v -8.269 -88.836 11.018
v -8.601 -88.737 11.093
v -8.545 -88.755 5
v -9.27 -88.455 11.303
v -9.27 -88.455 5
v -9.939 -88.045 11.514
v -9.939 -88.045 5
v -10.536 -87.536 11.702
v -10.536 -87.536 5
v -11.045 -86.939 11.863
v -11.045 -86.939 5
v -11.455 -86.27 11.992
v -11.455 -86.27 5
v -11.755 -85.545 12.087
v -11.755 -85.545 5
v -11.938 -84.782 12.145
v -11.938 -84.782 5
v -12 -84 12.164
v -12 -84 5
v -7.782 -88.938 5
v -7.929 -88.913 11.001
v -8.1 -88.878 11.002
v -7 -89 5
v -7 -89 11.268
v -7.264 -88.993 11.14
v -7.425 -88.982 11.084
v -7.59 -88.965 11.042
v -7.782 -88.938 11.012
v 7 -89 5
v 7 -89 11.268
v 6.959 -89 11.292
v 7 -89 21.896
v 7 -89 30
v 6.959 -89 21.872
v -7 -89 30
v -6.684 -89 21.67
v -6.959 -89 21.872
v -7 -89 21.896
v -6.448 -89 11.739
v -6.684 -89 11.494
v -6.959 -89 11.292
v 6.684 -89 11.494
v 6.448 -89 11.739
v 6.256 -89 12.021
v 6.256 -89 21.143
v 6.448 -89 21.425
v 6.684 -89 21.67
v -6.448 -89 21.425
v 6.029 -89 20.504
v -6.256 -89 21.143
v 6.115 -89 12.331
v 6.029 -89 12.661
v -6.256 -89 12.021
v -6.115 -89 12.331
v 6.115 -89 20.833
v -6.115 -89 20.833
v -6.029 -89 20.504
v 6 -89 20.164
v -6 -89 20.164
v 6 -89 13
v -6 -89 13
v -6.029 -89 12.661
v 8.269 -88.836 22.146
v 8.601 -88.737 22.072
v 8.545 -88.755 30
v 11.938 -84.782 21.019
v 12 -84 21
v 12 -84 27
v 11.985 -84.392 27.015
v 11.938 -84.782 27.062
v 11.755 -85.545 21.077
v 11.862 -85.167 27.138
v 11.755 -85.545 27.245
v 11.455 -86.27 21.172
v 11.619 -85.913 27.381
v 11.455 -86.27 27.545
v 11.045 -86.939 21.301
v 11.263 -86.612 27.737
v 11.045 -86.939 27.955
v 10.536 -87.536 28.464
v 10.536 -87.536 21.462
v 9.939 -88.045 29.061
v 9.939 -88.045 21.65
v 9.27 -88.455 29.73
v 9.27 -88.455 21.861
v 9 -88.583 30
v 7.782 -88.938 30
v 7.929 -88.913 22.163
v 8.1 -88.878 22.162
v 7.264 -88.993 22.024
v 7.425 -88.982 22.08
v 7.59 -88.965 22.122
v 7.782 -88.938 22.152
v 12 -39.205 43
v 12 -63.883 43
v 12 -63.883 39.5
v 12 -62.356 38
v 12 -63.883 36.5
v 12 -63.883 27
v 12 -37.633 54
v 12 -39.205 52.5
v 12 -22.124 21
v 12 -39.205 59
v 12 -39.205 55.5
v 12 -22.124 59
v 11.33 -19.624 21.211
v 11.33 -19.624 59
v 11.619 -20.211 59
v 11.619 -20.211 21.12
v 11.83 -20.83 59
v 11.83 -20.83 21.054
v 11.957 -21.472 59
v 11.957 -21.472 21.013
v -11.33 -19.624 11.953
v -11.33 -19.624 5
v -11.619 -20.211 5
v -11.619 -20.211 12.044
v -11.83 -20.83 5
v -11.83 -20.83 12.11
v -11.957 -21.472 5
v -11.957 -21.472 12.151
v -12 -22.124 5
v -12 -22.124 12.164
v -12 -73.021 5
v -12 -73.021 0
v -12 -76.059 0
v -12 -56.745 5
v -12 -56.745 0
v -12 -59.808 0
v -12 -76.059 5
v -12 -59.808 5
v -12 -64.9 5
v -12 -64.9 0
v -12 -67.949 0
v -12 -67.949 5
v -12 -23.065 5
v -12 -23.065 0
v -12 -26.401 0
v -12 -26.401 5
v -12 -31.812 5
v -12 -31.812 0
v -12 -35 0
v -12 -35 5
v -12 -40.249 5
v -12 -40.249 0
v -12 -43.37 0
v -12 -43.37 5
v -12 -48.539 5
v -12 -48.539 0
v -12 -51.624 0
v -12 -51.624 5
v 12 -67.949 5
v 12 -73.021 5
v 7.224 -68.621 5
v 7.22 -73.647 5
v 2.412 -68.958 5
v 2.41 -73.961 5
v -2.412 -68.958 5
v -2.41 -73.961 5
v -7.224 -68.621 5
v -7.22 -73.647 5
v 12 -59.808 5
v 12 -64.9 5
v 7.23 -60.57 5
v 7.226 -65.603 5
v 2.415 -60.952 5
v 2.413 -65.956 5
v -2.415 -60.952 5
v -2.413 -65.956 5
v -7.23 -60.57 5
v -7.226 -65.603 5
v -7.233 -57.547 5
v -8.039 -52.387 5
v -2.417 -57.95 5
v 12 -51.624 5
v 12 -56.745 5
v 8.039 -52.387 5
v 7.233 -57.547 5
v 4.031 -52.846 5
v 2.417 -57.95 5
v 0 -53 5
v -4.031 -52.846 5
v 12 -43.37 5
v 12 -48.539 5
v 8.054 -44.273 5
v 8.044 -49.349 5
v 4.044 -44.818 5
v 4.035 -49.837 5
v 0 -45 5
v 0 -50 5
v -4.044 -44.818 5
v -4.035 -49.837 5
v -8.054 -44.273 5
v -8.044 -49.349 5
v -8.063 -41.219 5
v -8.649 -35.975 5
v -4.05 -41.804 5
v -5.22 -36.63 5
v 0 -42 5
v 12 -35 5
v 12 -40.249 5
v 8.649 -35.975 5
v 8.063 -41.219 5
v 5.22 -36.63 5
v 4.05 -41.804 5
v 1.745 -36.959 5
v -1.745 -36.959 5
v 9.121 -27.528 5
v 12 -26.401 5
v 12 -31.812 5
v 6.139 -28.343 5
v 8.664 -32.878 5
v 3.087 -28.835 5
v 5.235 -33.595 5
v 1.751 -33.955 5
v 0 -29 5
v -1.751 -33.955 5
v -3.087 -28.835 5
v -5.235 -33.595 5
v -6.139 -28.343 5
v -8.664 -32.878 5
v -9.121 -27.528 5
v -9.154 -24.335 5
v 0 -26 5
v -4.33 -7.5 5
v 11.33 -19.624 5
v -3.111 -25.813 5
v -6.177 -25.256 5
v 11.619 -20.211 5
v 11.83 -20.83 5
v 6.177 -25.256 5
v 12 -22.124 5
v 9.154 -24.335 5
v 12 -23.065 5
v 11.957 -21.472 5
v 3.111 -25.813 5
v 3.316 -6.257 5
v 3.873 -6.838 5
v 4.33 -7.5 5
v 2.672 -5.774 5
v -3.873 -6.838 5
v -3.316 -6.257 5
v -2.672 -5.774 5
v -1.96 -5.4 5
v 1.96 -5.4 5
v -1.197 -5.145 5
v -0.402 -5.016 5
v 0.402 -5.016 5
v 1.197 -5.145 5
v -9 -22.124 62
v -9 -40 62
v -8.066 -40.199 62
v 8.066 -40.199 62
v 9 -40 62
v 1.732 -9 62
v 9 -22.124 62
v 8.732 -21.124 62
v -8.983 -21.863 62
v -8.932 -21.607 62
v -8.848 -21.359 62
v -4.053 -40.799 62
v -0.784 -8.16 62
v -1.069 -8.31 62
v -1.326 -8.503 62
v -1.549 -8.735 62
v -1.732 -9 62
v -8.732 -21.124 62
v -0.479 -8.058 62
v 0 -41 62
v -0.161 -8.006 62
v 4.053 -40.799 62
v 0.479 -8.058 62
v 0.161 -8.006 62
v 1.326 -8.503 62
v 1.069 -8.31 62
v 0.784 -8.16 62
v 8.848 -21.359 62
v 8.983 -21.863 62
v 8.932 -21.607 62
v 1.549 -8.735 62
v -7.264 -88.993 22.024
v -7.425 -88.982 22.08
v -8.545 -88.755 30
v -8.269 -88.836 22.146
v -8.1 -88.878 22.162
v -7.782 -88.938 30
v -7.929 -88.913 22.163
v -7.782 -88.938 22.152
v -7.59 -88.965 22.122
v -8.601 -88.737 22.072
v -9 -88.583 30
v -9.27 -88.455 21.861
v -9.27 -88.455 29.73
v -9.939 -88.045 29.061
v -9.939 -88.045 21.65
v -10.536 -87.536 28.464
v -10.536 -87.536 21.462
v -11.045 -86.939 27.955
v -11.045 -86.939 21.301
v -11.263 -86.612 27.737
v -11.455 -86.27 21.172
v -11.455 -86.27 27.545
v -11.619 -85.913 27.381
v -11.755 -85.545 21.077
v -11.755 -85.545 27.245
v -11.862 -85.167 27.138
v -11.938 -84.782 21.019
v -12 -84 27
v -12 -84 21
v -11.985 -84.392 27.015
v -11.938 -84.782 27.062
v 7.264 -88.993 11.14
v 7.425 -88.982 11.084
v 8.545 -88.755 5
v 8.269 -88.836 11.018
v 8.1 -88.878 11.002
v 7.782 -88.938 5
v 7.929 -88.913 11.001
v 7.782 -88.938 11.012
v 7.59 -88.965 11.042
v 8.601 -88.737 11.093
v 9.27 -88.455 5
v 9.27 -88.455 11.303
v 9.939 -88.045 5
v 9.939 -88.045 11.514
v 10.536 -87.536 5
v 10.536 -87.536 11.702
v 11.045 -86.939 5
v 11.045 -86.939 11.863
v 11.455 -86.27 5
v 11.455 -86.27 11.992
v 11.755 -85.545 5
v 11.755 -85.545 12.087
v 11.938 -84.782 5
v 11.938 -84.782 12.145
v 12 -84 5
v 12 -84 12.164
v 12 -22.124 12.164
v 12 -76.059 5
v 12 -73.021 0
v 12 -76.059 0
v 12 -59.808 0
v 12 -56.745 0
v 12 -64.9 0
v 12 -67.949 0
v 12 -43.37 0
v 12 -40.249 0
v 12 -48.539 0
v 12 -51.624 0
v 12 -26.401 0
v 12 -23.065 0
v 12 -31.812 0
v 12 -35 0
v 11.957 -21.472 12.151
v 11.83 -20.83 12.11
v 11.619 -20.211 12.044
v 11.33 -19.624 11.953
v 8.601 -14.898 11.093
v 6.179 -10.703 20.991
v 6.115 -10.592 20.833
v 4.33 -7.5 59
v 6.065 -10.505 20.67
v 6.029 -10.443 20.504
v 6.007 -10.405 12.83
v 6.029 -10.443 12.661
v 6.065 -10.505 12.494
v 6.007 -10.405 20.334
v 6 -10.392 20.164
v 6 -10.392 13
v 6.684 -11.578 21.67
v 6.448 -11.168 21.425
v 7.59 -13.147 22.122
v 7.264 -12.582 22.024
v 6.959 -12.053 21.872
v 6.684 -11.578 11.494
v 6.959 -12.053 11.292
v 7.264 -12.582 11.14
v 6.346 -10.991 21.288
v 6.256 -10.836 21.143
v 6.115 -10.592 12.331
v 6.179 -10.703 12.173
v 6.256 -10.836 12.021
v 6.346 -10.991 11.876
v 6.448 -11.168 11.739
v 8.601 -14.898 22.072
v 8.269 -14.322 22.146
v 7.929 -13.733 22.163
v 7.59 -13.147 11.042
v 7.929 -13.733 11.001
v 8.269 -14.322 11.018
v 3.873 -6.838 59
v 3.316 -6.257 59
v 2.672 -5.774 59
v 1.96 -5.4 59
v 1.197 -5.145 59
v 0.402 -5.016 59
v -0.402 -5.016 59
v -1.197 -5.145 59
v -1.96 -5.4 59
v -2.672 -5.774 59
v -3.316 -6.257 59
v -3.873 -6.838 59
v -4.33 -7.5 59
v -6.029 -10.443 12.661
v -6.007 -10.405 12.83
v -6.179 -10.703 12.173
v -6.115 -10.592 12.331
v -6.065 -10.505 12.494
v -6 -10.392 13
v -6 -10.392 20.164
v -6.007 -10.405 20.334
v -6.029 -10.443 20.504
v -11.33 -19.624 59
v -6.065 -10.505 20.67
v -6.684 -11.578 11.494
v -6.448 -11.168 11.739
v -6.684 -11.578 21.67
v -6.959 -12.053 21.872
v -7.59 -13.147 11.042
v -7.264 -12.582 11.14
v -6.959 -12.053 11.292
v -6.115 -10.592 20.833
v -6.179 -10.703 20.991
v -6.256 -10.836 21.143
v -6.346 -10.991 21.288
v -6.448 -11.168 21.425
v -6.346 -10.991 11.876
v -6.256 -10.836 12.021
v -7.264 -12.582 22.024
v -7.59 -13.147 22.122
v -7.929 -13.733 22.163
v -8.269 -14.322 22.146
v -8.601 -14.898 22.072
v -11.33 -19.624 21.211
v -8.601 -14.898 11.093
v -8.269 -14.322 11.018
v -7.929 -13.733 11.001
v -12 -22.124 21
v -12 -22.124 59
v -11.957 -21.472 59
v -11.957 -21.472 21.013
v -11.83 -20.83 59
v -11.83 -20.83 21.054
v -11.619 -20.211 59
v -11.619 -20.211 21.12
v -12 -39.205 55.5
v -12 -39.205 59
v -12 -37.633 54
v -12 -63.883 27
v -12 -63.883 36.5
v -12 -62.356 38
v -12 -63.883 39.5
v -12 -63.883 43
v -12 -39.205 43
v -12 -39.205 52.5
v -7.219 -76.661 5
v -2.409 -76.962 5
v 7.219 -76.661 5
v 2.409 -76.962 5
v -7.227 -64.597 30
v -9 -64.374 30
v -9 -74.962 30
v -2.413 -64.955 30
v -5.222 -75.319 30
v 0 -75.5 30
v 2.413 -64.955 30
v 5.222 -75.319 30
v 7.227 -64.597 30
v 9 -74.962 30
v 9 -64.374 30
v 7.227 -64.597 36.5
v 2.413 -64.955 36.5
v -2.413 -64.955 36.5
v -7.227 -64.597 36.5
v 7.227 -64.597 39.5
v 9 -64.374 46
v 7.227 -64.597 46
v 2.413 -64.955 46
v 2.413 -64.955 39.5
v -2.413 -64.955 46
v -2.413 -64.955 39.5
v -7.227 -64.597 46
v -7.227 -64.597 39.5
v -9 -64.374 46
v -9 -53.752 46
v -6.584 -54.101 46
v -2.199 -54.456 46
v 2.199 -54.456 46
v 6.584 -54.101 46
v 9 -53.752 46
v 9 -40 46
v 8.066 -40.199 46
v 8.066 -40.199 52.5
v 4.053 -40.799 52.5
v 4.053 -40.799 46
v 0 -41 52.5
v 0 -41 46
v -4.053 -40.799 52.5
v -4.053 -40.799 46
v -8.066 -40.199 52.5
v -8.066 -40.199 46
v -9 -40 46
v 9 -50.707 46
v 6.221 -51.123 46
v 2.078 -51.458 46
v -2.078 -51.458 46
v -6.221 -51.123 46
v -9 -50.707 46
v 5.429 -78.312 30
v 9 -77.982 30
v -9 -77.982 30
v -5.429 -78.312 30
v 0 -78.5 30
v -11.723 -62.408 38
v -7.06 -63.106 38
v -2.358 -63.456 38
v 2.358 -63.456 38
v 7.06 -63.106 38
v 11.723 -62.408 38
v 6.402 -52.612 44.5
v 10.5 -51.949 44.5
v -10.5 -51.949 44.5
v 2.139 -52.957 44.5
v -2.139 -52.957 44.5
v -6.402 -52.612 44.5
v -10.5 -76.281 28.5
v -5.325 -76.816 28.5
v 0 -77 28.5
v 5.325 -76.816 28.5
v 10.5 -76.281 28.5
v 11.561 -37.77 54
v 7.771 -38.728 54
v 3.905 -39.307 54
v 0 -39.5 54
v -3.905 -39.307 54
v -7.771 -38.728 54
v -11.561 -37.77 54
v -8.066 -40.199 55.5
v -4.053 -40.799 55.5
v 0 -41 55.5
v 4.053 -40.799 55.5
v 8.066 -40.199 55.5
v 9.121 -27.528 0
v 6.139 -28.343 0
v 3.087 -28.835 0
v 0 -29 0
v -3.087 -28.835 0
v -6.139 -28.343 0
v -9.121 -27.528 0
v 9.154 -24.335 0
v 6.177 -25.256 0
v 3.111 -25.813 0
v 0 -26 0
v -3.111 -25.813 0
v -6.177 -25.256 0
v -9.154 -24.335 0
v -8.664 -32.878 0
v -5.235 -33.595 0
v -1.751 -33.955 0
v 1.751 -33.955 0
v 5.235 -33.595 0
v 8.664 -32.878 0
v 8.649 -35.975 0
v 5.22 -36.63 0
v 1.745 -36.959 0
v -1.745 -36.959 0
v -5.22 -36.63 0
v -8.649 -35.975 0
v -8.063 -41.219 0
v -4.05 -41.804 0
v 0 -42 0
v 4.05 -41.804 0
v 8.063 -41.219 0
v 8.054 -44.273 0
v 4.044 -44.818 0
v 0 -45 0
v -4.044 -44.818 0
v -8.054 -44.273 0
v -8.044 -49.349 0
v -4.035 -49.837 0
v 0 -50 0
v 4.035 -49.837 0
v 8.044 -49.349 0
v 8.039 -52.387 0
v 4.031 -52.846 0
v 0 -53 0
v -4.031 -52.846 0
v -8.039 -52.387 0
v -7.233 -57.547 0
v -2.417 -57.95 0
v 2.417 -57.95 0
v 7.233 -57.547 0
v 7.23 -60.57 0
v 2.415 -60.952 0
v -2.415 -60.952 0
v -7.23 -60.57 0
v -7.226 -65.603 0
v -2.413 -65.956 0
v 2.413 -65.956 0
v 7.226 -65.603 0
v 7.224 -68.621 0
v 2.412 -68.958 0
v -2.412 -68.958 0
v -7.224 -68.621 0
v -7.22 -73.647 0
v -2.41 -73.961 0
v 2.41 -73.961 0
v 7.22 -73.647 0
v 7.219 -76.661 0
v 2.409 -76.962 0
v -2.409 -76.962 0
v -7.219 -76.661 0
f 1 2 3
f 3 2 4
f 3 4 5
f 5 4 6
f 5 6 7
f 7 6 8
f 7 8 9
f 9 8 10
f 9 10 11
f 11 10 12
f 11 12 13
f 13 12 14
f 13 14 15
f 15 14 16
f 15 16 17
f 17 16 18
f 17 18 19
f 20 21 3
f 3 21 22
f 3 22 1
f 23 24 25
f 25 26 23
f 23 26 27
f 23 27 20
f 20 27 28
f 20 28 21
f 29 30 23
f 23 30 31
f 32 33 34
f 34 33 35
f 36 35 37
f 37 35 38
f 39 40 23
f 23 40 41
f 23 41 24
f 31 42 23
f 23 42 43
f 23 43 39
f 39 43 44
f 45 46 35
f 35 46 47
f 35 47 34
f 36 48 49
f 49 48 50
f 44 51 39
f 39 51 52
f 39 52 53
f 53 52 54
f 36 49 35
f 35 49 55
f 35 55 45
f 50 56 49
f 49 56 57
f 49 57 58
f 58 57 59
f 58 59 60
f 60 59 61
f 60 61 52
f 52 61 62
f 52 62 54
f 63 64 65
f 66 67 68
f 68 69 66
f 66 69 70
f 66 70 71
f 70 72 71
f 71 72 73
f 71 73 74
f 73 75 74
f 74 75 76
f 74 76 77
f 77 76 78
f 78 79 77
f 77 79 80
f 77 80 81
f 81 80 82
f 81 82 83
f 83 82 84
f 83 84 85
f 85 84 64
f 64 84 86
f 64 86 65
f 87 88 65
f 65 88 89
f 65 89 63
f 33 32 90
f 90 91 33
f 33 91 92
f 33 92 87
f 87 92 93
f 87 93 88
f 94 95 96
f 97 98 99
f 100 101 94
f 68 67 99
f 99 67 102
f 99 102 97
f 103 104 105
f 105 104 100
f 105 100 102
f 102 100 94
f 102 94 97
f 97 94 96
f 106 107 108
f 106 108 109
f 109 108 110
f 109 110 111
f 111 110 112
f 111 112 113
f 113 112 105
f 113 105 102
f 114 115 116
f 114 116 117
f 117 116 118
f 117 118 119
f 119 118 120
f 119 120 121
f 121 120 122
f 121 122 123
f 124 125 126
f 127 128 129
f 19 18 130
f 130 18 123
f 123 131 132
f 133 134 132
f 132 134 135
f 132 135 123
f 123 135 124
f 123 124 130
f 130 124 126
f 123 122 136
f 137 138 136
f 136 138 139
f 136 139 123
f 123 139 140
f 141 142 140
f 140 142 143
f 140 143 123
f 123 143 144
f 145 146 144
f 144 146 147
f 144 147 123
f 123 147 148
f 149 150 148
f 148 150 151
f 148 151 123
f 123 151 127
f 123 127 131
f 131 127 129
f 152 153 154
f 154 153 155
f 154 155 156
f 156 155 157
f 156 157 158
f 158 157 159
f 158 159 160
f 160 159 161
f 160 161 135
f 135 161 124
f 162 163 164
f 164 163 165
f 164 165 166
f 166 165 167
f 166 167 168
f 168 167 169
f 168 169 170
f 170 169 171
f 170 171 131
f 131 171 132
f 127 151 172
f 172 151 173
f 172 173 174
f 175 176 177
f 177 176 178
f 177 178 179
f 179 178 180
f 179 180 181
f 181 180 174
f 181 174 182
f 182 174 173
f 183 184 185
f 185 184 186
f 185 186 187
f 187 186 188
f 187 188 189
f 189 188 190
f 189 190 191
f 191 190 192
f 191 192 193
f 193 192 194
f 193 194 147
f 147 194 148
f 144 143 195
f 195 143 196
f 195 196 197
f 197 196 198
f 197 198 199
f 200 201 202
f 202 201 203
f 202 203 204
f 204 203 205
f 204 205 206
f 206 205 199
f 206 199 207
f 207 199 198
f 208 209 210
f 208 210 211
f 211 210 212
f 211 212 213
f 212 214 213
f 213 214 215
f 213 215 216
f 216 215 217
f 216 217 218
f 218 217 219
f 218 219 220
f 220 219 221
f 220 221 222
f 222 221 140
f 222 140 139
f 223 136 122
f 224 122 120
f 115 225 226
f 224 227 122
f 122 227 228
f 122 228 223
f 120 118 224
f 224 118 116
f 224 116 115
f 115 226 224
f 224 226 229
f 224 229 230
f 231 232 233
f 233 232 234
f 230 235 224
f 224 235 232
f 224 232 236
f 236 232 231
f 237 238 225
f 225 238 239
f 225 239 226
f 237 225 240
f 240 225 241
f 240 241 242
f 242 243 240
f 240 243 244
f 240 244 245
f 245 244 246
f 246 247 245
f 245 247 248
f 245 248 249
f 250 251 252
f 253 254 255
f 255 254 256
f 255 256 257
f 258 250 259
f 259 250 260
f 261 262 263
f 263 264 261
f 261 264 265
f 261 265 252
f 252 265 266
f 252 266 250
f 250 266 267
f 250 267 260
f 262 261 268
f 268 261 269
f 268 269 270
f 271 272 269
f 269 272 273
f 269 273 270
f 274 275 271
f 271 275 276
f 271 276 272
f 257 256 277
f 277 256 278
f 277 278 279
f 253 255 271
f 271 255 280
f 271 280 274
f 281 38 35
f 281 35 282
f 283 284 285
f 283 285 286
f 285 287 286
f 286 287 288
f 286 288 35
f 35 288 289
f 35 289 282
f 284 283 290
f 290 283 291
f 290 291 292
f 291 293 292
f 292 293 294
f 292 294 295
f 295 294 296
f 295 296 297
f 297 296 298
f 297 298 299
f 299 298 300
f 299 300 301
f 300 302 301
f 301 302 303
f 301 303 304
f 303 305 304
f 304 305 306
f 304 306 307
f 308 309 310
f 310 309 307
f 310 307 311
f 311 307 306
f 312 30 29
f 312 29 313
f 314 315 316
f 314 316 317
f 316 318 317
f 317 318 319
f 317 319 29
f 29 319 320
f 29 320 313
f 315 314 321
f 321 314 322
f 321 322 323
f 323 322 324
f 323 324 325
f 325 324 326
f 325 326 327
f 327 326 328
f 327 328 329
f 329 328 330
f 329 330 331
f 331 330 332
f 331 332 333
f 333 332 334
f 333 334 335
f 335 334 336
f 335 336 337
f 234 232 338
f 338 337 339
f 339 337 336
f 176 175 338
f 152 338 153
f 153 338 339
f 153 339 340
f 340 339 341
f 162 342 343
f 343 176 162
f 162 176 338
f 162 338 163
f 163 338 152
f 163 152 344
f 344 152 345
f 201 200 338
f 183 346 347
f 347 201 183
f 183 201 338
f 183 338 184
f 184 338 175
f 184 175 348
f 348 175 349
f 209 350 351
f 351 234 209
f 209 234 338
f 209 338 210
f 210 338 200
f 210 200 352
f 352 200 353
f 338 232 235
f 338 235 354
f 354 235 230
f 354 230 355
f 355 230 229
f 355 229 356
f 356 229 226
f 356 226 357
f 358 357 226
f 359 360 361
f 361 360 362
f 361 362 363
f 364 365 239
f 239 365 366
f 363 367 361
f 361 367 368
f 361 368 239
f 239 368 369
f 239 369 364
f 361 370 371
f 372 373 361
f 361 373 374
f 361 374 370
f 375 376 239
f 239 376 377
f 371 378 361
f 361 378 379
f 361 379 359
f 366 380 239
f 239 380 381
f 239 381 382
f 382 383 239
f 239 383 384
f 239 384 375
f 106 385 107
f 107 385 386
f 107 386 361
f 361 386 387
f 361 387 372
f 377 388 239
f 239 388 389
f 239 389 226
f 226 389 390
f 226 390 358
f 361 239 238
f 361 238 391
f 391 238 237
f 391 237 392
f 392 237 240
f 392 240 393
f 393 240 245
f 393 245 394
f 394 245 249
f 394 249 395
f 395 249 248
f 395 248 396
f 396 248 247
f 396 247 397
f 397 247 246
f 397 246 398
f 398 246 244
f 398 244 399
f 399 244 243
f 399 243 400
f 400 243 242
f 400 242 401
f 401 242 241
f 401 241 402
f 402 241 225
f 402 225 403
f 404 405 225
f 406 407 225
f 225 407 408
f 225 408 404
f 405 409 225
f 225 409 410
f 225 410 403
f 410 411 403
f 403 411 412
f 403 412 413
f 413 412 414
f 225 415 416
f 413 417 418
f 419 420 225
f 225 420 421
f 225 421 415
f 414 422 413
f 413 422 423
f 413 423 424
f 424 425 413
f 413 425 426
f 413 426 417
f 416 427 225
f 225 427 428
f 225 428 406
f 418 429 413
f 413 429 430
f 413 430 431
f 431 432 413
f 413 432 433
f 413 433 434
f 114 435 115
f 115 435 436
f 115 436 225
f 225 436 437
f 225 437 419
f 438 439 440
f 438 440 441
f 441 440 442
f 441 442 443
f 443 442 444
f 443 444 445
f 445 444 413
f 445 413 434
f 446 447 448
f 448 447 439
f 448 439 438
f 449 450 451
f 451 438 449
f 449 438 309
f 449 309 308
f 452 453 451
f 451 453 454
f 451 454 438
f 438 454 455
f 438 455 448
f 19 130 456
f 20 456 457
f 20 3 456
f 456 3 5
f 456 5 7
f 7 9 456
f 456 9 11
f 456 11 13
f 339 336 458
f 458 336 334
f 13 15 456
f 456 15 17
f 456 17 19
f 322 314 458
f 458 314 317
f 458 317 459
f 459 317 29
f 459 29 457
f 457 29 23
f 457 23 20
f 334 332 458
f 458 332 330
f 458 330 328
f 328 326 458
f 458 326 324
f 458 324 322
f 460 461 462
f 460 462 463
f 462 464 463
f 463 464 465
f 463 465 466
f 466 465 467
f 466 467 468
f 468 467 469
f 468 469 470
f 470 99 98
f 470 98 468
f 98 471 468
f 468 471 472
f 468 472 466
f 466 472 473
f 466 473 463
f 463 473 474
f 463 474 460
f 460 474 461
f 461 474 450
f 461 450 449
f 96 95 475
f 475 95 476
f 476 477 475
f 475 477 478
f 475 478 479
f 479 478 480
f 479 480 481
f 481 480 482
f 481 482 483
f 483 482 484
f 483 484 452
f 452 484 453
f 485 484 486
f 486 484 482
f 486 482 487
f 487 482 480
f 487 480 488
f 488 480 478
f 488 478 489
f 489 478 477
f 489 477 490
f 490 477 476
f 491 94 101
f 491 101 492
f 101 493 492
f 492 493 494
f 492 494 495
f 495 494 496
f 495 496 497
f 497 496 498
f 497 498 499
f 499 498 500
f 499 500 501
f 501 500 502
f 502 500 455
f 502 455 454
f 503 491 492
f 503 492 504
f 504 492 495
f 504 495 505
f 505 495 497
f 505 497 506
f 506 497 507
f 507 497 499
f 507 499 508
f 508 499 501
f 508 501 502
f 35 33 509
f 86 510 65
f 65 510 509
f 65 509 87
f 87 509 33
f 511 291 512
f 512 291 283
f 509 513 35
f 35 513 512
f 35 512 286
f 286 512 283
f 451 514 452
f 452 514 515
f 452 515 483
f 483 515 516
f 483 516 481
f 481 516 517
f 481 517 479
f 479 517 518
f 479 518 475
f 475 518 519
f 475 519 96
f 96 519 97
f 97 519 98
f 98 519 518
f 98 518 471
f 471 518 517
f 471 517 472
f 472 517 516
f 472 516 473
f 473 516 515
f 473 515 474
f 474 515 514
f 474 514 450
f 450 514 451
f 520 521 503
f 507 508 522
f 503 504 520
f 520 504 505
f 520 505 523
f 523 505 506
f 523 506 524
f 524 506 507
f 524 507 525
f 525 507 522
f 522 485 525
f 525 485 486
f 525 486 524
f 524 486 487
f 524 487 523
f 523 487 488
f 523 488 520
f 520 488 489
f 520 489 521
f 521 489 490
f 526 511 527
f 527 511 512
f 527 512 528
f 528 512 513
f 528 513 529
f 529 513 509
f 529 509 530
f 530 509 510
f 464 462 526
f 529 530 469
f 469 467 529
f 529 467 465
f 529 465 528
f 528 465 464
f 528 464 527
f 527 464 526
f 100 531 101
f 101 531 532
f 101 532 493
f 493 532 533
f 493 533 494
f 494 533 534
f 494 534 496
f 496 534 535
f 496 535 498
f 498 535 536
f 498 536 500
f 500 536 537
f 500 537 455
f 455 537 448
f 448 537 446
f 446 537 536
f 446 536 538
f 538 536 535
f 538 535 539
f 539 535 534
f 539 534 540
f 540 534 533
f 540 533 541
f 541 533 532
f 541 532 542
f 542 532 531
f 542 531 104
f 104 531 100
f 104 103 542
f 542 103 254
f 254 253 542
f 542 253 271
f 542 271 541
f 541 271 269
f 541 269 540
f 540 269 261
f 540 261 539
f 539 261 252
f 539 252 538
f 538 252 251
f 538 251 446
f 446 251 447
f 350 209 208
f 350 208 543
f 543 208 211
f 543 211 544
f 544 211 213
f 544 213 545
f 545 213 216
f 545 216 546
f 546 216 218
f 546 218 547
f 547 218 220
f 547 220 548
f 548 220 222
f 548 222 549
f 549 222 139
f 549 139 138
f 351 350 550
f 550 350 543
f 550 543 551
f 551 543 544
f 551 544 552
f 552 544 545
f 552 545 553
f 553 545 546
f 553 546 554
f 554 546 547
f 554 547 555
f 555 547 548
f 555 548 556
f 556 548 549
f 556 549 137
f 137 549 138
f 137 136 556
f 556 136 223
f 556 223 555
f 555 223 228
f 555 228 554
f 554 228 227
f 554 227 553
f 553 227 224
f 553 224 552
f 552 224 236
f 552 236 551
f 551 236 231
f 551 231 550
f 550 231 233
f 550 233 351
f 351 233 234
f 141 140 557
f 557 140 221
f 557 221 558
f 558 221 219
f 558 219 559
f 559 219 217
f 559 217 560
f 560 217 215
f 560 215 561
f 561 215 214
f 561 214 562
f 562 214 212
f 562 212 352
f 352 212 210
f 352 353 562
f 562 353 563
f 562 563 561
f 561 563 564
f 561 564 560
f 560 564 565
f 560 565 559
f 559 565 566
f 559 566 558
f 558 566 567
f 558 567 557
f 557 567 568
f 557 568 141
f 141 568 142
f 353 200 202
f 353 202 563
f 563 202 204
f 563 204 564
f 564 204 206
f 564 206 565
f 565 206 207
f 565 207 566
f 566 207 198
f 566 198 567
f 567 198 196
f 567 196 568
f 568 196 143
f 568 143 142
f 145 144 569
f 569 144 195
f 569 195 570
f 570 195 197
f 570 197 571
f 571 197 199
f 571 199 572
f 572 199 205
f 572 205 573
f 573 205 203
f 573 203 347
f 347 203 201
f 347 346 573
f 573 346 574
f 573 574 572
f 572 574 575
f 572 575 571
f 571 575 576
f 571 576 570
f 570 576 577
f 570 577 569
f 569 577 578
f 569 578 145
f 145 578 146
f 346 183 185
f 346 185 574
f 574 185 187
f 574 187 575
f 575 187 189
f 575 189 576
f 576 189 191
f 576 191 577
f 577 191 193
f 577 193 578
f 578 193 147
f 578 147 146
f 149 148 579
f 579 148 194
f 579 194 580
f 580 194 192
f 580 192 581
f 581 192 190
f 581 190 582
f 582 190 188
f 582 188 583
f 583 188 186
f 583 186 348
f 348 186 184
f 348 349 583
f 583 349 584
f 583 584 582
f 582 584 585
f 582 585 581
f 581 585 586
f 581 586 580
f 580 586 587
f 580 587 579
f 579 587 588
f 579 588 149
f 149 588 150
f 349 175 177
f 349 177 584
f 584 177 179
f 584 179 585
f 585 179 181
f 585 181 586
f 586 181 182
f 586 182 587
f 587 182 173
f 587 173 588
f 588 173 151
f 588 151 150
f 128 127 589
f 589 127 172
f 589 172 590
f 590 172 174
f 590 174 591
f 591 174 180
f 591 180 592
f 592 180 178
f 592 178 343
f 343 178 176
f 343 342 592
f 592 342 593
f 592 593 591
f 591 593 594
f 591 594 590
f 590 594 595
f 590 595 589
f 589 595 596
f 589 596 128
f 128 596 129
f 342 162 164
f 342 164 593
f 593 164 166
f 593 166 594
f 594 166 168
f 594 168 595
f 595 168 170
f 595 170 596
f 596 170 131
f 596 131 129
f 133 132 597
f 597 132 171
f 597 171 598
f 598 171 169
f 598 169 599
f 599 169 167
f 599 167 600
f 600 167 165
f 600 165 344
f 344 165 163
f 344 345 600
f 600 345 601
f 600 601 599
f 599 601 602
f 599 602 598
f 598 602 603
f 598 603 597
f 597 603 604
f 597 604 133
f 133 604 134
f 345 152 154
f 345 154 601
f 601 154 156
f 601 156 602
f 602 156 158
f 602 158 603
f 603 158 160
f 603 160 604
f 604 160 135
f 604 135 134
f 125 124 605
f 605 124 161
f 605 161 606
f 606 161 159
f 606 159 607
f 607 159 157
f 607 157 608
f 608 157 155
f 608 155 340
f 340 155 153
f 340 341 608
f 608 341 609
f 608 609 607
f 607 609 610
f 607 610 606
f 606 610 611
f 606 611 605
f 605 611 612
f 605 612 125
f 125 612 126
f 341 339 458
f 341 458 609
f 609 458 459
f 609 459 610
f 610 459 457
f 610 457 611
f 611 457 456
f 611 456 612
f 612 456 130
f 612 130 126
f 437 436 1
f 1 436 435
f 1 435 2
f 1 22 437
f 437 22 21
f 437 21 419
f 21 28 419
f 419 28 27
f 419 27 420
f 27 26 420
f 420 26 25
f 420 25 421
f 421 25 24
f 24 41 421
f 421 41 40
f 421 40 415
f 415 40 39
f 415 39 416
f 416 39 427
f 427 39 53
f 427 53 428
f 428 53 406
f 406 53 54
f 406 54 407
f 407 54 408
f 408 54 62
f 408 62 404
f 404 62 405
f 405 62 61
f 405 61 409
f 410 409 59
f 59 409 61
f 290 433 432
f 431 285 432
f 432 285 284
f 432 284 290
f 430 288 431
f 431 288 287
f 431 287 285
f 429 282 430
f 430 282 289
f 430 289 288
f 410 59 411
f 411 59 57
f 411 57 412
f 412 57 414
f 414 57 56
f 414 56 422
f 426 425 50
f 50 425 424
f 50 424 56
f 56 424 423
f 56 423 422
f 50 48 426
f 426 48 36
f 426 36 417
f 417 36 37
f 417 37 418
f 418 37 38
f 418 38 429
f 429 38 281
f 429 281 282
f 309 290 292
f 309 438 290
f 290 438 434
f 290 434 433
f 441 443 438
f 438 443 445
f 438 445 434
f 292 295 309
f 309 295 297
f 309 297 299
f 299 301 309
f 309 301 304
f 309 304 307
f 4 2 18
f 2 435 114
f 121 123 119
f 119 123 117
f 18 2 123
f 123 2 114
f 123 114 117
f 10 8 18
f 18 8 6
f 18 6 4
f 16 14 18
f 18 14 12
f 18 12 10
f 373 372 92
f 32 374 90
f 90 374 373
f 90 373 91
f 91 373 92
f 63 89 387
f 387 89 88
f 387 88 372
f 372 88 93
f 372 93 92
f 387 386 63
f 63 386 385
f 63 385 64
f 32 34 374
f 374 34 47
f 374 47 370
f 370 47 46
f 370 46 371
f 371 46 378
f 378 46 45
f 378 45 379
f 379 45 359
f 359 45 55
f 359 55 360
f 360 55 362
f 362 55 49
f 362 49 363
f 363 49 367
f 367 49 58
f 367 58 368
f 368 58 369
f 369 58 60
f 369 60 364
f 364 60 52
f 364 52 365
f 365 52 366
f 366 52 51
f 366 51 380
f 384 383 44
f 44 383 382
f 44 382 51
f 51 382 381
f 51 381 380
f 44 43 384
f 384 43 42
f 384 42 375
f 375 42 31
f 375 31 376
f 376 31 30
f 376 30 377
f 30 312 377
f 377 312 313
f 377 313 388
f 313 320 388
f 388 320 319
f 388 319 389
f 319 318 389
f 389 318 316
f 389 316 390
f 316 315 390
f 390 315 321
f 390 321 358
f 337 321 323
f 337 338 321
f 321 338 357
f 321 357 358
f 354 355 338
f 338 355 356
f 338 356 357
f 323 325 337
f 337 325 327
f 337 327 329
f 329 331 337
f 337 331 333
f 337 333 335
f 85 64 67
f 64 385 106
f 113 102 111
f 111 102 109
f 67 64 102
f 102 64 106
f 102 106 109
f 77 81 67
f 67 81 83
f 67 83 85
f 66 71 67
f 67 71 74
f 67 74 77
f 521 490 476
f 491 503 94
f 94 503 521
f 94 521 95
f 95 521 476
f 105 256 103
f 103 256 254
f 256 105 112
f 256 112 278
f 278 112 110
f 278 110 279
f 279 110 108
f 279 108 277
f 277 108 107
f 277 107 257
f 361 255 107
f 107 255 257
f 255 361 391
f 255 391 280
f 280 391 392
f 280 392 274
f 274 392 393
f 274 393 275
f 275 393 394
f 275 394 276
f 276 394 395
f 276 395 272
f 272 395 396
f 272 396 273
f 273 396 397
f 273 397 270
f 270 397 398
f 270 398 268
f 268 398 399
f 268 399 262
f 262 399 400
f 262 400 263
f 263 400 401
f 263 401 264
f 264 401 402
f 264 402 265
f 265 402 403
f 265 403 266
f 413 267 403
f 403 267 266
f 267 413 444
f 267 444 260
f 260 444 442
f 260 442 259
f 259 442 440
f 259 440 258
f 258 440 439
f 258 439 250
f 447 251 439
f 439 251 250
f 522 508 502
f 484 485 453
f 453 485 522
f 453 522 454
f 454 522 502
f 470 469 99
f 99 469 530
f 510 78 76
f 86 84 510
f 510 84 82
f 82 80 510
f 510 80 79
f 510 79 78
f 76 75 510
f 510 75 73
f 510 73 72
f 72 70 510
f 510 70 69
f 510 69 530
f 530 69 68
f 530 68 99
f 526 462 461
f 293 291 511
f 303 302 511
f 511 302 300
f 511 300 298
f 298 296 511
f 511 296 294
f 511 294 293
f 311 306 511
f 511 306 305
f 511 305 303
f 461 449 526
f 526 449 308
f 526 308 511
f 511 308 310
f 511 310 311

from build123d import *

# Parameters (mm, degrees)
BOSS_EXTRUDE1_START = 5
BOSS_EXTRUDE1_DEPTH = 57
SKETCH8_W           = 5
SKETCH8_H           = 3
REVOLVE1_ANGLE      = 90
SKETCH9_W           = 63.56376225
SKETCH9_H           = 92.375008695
SKETCH9_W_2         = 66.279802766
SKETCH9_H_2         = 103.815770587
CUT_EXTRUDE2_DEPTH  = 100
CUT_EXTRUDE3_DEPTH  = 100
CHAMFER4_SIZE       = 3
CHAMFER5_SIZE       = 3
CHAMFER7_SIZE       = 3
CHAMFER10_SIZE      = 3


with BuildPart() as part:
    # Sketch1 → Boss-Extrude1 (new body)
    with BuildSketch(Plane.XY.offset(BOSS_EXTRUDE1_START)):
        with BuildLine():
            Line((-4.330127019, -7.5), (-11.330127019, -19.624355653))
            ThreePointArc((-11.330127019, -19.624355653), (-11.829629131, -20.830260427), (-12, -22.124355653))
            Line((-12, -22.124355653), (-12, -84))
            ThreePointArc((-12, -84), (-10.535533906, -87.535533906), (-7, -89))
            Line((-7, -89), (7, -89))
            ThreePointArc((7, -89), (10.535533906, -87.535533906), (12, -84))
            Line((12, -84), (12, -22.124355653))
            ThreePointArc((12, -22.124355653), (11.829629131, -20.830260427), (11.330127019, -19.624355653))
            Line((11.330127019, -19.624355653), (4.330127019, -7.5))
            ThreePointArc((4.330127019, -7.5), (0, -5), (-4.330127019, -7.5))
        make_face()
    extrude(amount=BOSS_EXTRUDE1_DEPTH)

    # Sketch7 → Cut-Revolve2 (revolve, cut)
    with BuildSketch(Plane(origin=(0, 0, 0), x_dir=(0, 0, -1), z_dir=(1, 0, 0))):
        Polygon((-73.391777599, -41), (-62, -41), (-46, -41), (-46, -65), (-30, -65), (-30, -89), (-30, -99.200268773), (-73.391777599, -99.200268773), align=None)
        Polygon((-28.5, -77), (-30, -75.5), (-30, -78.5), align=None)
        Polygon((-38, -63.5), (-36.5, -65), (-39.5, -65), align=None)
        Polygon((-44.5, -53), (-46, -54.5), (-46, -51.5), align=None)
        Polygon((-54, -39.5), (-52.5, -41), (-55.5, -41), align=None)
    revolve(axis=Axis((0, 0, 0), (0, 0, 1)), mode=Mode.SUBTRACT)

    # Sketch8 → Revolve1 (revolve, symmetric)
    with BuildSketch(Plane(origin=(0, 0, 0), x_dir=(0, 0, -1), z_dir=(1, 0, 0))) as revolve1_sk:
        with Locations((-2.5, -35.5)):
            Rectangle(SKETCH8_W, SKETCH8_H)
        with Locations((-2.5, -27.5)):
            Rectangle(SKETCH8_W, SKETCH8_H)
        with Locations((-2.5, -43.5)):
            Rectangle(SKETCH8_W, SKETCH8_H)
        with Locations((-2.5, -51.5)):
            Rectangle(SKETCH8_W, SKETCH8_H)
        with Locations((-2.5, -59.5)):
            Rectangle(SKETCH8_W, SKETCH8_H)
        with Locations((-2.5, -67.5)):
            Rectangle(SKETCH8_W, SKETCH8_H)
        with Locations((-2.5, -75.5)):
            Rectangle(SKETCH8_W, SKETCH8_H)
    revolve(axis=Axis((0, 0, 22.869751467), (0, 0, -1)), revolution_arc=REVOLVE1_ANGLE / 2)
    revolve(revolve1_sk.sketch, axis=Axis((0, 0, 22.869751467), (0, 0, 1)), revolution_arc=REVOLVE1_ANGLE / 2)

    # Sketch9 → Cut-Extrude2 (cut)
    with BuildSketch(Plane(origin=(0, 0, 0), x_dir=(1, 0, 0), z_dir=(0, 1, 0))):
        with Locations((-43.781881125, -28.783671007)):
            Rectangle(SKETCH9_W, SKETCH9_H)
        with Locations((45.139901383, -26.868725236)):
            Rectangle(SKETCH9_W_2, SKETCH9_H_2)
    extrude(amount=-CUT_EXTRUDE2_DEPTH, mode=Mode.SUBTRACT)

    # Sketch10 → Cut-Extrude3 (cut)
    with BuildSketch(Plane(origin=(0, 0, 0), x_dir=(1, 0, 0), z_dir=(0, 1, 0))):
        with BuildLine():
            Line((12, -21), (12, -20.164136905))
            Line((12, -20.164136905), (12, -13))
            Line((12, -13), (12, -12.164136905))
            Line((12, -12.164136905), (8.601411599, -11.092566099))
            ThreePointArc((8.601411599, -11.092566099), (6.817380703, -11.387110791), (6, -13))
            Line((6, -13), (6, -20.164136905))
            ThreePointArc((6, -20.164136905), (6.817380703, -21.777026114), (8.601411599, -22.071570807))
            Line((8.601411599, -22.071570807), (12, -21))
        make_face()
        with BuildLine():
            Line((-12, -12.164136905), (-12, -13))
            Line((-12, -13), (-12, -20.164136905))
            Line((-12, -20.164136905), (-12, -21))
            Line((-12, -21), (-8.601411599, -22.071570807))
            ThreePointArc((-8.601411599, -22.071570807), (-6.817380703, -21.777026114), (-6, -20.164136905))
            Line((-6, -20.164136905), (-6, -13))
            ThreePointArc((-6, -13), (-6.817380703, -11.387110791), (-8.601411599, -11.092566099))
            Line((-8.601411599, -11.092566099), (-12, -12.164136905))
        make_face()
    extrude(amount=-CUT_EXTRUDE3_DEPTH, mode=Mode.SUBTRACT)

    # Chamfer4
    chamfer4_edges = [part.edges().sort_by_distance(p)[0] for p in [
        (12, -44.643511809, 46),
    ]]
    chamfer(chamfer4_edges, length=CHAMFER4_SIZE)

    # Chamfer5
    chamfer5_edges = [part.edges().sort_by_distance(p)[0] for p in [
        (11.829629131, -20.830260427, 62),
        (7.830127019, -13.562177826, 62),
        (0, -5, 62),
        (12, -30.66447361, 62),
        (-7.830127019, -13.562177826, 62),
        (-11.829629131, -20.830260427, 62),
        (-12, -30.66447361, 62),
    ]]
    chamfer(chamfer5_edges, length=CHAMFER5_SIZE)

    # Chamfer7
    chamfer7_edges = [part.edges().sort_by_distance(p)[0] for p in [
        (-12, -44.643511809, 46),
    ]]
    chamfer(chamfer7_edges, length=CHAMFER7_SIZE)

    # Chamfer10
    # the kernel refuses this chamfer: 3 mm, written as the material it takes off along each edge
    with BuildSketch(Plane(origin=(-12, -82.255306543, 30), x_dir=(0.9996219169112968, 0, 0.02749587661058678), z_dir=(0, 1, 0))) as chamfer10_piece_1_section:
        Polygon((CHAMFER10_SIZE * 0.999621916911, CHAMFER10_SIZE * 0.0274958766106), (-CHAMFER10_SIZE * 0.0274958766106, CHAMFER10_SIZE * 0.999621916911), (0, 0), align=None)
    chamfer10_piece_1 = extrude(amount=26.087650492, mode=Mode.PRIVATE)
    chamfer10_piece_1 = chamfer10_piece_1 - Plane(origin=(0, 0, 28.957588125), x_dir=(0, -1, 0), z_dir=(0, 0, -1)) * Cylinder(65, 65, mode=Mode.PRIVATE)
    add(chamfer10_piece_1, mode=Mode.SUBTRACT)
    with BuildSketch(Plane(origin=(-12, -91.715048964, 30), x_dir=(0.9996219169112968, 0, 0.02749587661058678), z_dir=(0, 1, 0)), Plane(origin=(12, -69.86233176, 30), x_dir=(-0.9996219169112968, 0, 0.02749587661058678), z_dir=(0, -1, 0))) as chamfer10_piece_2:
        Polygon((CHAMFER10_SIZE * 0.999621916911, CHAMFER10_SIZE * 0.0274958766106), (-CHAMFER10_SIZE * 0.0274958766106, CHAMFER10_SIZE * 0.999621916911), (0, 0), align=None)
    extrude(amount=21.852717204, mode=Mode.SUBTRACT)
    with BuildSketch(Plane(origin=(12, -56.167656051, 30), x_dir=(-0.9996219169112968, 0, 0.02749587661058678), z_dir=(0, -1, 0))) as chamfer10_piece_3_section:
        Polygon((CHAMFER10_SIZE * 0.999621916911, CHAMFER10_SIZE * 0.0274958766106), (-CHAMFER10_SIZE * 0.0274958766106, CHAMFER10_SIZE * 0.999621916911), (0, 0), align=None)
    chamfer10_piece_3 = extrude(amount=26.087650492, mode=Mode.PRIVATE)
    chamfer10_piece_3 = chamfer10_piece_3 - Plane(origin=(0, 0, 28.982814192), x_dir=(0, -1, 0), z_dir=(0, 0, -1)) * Cylinder(65, 65, mode=Mode.PRIVATE)
    add(chamfer10_piece_3, mode=Mode.SUBTRACT)


solid = part.part
